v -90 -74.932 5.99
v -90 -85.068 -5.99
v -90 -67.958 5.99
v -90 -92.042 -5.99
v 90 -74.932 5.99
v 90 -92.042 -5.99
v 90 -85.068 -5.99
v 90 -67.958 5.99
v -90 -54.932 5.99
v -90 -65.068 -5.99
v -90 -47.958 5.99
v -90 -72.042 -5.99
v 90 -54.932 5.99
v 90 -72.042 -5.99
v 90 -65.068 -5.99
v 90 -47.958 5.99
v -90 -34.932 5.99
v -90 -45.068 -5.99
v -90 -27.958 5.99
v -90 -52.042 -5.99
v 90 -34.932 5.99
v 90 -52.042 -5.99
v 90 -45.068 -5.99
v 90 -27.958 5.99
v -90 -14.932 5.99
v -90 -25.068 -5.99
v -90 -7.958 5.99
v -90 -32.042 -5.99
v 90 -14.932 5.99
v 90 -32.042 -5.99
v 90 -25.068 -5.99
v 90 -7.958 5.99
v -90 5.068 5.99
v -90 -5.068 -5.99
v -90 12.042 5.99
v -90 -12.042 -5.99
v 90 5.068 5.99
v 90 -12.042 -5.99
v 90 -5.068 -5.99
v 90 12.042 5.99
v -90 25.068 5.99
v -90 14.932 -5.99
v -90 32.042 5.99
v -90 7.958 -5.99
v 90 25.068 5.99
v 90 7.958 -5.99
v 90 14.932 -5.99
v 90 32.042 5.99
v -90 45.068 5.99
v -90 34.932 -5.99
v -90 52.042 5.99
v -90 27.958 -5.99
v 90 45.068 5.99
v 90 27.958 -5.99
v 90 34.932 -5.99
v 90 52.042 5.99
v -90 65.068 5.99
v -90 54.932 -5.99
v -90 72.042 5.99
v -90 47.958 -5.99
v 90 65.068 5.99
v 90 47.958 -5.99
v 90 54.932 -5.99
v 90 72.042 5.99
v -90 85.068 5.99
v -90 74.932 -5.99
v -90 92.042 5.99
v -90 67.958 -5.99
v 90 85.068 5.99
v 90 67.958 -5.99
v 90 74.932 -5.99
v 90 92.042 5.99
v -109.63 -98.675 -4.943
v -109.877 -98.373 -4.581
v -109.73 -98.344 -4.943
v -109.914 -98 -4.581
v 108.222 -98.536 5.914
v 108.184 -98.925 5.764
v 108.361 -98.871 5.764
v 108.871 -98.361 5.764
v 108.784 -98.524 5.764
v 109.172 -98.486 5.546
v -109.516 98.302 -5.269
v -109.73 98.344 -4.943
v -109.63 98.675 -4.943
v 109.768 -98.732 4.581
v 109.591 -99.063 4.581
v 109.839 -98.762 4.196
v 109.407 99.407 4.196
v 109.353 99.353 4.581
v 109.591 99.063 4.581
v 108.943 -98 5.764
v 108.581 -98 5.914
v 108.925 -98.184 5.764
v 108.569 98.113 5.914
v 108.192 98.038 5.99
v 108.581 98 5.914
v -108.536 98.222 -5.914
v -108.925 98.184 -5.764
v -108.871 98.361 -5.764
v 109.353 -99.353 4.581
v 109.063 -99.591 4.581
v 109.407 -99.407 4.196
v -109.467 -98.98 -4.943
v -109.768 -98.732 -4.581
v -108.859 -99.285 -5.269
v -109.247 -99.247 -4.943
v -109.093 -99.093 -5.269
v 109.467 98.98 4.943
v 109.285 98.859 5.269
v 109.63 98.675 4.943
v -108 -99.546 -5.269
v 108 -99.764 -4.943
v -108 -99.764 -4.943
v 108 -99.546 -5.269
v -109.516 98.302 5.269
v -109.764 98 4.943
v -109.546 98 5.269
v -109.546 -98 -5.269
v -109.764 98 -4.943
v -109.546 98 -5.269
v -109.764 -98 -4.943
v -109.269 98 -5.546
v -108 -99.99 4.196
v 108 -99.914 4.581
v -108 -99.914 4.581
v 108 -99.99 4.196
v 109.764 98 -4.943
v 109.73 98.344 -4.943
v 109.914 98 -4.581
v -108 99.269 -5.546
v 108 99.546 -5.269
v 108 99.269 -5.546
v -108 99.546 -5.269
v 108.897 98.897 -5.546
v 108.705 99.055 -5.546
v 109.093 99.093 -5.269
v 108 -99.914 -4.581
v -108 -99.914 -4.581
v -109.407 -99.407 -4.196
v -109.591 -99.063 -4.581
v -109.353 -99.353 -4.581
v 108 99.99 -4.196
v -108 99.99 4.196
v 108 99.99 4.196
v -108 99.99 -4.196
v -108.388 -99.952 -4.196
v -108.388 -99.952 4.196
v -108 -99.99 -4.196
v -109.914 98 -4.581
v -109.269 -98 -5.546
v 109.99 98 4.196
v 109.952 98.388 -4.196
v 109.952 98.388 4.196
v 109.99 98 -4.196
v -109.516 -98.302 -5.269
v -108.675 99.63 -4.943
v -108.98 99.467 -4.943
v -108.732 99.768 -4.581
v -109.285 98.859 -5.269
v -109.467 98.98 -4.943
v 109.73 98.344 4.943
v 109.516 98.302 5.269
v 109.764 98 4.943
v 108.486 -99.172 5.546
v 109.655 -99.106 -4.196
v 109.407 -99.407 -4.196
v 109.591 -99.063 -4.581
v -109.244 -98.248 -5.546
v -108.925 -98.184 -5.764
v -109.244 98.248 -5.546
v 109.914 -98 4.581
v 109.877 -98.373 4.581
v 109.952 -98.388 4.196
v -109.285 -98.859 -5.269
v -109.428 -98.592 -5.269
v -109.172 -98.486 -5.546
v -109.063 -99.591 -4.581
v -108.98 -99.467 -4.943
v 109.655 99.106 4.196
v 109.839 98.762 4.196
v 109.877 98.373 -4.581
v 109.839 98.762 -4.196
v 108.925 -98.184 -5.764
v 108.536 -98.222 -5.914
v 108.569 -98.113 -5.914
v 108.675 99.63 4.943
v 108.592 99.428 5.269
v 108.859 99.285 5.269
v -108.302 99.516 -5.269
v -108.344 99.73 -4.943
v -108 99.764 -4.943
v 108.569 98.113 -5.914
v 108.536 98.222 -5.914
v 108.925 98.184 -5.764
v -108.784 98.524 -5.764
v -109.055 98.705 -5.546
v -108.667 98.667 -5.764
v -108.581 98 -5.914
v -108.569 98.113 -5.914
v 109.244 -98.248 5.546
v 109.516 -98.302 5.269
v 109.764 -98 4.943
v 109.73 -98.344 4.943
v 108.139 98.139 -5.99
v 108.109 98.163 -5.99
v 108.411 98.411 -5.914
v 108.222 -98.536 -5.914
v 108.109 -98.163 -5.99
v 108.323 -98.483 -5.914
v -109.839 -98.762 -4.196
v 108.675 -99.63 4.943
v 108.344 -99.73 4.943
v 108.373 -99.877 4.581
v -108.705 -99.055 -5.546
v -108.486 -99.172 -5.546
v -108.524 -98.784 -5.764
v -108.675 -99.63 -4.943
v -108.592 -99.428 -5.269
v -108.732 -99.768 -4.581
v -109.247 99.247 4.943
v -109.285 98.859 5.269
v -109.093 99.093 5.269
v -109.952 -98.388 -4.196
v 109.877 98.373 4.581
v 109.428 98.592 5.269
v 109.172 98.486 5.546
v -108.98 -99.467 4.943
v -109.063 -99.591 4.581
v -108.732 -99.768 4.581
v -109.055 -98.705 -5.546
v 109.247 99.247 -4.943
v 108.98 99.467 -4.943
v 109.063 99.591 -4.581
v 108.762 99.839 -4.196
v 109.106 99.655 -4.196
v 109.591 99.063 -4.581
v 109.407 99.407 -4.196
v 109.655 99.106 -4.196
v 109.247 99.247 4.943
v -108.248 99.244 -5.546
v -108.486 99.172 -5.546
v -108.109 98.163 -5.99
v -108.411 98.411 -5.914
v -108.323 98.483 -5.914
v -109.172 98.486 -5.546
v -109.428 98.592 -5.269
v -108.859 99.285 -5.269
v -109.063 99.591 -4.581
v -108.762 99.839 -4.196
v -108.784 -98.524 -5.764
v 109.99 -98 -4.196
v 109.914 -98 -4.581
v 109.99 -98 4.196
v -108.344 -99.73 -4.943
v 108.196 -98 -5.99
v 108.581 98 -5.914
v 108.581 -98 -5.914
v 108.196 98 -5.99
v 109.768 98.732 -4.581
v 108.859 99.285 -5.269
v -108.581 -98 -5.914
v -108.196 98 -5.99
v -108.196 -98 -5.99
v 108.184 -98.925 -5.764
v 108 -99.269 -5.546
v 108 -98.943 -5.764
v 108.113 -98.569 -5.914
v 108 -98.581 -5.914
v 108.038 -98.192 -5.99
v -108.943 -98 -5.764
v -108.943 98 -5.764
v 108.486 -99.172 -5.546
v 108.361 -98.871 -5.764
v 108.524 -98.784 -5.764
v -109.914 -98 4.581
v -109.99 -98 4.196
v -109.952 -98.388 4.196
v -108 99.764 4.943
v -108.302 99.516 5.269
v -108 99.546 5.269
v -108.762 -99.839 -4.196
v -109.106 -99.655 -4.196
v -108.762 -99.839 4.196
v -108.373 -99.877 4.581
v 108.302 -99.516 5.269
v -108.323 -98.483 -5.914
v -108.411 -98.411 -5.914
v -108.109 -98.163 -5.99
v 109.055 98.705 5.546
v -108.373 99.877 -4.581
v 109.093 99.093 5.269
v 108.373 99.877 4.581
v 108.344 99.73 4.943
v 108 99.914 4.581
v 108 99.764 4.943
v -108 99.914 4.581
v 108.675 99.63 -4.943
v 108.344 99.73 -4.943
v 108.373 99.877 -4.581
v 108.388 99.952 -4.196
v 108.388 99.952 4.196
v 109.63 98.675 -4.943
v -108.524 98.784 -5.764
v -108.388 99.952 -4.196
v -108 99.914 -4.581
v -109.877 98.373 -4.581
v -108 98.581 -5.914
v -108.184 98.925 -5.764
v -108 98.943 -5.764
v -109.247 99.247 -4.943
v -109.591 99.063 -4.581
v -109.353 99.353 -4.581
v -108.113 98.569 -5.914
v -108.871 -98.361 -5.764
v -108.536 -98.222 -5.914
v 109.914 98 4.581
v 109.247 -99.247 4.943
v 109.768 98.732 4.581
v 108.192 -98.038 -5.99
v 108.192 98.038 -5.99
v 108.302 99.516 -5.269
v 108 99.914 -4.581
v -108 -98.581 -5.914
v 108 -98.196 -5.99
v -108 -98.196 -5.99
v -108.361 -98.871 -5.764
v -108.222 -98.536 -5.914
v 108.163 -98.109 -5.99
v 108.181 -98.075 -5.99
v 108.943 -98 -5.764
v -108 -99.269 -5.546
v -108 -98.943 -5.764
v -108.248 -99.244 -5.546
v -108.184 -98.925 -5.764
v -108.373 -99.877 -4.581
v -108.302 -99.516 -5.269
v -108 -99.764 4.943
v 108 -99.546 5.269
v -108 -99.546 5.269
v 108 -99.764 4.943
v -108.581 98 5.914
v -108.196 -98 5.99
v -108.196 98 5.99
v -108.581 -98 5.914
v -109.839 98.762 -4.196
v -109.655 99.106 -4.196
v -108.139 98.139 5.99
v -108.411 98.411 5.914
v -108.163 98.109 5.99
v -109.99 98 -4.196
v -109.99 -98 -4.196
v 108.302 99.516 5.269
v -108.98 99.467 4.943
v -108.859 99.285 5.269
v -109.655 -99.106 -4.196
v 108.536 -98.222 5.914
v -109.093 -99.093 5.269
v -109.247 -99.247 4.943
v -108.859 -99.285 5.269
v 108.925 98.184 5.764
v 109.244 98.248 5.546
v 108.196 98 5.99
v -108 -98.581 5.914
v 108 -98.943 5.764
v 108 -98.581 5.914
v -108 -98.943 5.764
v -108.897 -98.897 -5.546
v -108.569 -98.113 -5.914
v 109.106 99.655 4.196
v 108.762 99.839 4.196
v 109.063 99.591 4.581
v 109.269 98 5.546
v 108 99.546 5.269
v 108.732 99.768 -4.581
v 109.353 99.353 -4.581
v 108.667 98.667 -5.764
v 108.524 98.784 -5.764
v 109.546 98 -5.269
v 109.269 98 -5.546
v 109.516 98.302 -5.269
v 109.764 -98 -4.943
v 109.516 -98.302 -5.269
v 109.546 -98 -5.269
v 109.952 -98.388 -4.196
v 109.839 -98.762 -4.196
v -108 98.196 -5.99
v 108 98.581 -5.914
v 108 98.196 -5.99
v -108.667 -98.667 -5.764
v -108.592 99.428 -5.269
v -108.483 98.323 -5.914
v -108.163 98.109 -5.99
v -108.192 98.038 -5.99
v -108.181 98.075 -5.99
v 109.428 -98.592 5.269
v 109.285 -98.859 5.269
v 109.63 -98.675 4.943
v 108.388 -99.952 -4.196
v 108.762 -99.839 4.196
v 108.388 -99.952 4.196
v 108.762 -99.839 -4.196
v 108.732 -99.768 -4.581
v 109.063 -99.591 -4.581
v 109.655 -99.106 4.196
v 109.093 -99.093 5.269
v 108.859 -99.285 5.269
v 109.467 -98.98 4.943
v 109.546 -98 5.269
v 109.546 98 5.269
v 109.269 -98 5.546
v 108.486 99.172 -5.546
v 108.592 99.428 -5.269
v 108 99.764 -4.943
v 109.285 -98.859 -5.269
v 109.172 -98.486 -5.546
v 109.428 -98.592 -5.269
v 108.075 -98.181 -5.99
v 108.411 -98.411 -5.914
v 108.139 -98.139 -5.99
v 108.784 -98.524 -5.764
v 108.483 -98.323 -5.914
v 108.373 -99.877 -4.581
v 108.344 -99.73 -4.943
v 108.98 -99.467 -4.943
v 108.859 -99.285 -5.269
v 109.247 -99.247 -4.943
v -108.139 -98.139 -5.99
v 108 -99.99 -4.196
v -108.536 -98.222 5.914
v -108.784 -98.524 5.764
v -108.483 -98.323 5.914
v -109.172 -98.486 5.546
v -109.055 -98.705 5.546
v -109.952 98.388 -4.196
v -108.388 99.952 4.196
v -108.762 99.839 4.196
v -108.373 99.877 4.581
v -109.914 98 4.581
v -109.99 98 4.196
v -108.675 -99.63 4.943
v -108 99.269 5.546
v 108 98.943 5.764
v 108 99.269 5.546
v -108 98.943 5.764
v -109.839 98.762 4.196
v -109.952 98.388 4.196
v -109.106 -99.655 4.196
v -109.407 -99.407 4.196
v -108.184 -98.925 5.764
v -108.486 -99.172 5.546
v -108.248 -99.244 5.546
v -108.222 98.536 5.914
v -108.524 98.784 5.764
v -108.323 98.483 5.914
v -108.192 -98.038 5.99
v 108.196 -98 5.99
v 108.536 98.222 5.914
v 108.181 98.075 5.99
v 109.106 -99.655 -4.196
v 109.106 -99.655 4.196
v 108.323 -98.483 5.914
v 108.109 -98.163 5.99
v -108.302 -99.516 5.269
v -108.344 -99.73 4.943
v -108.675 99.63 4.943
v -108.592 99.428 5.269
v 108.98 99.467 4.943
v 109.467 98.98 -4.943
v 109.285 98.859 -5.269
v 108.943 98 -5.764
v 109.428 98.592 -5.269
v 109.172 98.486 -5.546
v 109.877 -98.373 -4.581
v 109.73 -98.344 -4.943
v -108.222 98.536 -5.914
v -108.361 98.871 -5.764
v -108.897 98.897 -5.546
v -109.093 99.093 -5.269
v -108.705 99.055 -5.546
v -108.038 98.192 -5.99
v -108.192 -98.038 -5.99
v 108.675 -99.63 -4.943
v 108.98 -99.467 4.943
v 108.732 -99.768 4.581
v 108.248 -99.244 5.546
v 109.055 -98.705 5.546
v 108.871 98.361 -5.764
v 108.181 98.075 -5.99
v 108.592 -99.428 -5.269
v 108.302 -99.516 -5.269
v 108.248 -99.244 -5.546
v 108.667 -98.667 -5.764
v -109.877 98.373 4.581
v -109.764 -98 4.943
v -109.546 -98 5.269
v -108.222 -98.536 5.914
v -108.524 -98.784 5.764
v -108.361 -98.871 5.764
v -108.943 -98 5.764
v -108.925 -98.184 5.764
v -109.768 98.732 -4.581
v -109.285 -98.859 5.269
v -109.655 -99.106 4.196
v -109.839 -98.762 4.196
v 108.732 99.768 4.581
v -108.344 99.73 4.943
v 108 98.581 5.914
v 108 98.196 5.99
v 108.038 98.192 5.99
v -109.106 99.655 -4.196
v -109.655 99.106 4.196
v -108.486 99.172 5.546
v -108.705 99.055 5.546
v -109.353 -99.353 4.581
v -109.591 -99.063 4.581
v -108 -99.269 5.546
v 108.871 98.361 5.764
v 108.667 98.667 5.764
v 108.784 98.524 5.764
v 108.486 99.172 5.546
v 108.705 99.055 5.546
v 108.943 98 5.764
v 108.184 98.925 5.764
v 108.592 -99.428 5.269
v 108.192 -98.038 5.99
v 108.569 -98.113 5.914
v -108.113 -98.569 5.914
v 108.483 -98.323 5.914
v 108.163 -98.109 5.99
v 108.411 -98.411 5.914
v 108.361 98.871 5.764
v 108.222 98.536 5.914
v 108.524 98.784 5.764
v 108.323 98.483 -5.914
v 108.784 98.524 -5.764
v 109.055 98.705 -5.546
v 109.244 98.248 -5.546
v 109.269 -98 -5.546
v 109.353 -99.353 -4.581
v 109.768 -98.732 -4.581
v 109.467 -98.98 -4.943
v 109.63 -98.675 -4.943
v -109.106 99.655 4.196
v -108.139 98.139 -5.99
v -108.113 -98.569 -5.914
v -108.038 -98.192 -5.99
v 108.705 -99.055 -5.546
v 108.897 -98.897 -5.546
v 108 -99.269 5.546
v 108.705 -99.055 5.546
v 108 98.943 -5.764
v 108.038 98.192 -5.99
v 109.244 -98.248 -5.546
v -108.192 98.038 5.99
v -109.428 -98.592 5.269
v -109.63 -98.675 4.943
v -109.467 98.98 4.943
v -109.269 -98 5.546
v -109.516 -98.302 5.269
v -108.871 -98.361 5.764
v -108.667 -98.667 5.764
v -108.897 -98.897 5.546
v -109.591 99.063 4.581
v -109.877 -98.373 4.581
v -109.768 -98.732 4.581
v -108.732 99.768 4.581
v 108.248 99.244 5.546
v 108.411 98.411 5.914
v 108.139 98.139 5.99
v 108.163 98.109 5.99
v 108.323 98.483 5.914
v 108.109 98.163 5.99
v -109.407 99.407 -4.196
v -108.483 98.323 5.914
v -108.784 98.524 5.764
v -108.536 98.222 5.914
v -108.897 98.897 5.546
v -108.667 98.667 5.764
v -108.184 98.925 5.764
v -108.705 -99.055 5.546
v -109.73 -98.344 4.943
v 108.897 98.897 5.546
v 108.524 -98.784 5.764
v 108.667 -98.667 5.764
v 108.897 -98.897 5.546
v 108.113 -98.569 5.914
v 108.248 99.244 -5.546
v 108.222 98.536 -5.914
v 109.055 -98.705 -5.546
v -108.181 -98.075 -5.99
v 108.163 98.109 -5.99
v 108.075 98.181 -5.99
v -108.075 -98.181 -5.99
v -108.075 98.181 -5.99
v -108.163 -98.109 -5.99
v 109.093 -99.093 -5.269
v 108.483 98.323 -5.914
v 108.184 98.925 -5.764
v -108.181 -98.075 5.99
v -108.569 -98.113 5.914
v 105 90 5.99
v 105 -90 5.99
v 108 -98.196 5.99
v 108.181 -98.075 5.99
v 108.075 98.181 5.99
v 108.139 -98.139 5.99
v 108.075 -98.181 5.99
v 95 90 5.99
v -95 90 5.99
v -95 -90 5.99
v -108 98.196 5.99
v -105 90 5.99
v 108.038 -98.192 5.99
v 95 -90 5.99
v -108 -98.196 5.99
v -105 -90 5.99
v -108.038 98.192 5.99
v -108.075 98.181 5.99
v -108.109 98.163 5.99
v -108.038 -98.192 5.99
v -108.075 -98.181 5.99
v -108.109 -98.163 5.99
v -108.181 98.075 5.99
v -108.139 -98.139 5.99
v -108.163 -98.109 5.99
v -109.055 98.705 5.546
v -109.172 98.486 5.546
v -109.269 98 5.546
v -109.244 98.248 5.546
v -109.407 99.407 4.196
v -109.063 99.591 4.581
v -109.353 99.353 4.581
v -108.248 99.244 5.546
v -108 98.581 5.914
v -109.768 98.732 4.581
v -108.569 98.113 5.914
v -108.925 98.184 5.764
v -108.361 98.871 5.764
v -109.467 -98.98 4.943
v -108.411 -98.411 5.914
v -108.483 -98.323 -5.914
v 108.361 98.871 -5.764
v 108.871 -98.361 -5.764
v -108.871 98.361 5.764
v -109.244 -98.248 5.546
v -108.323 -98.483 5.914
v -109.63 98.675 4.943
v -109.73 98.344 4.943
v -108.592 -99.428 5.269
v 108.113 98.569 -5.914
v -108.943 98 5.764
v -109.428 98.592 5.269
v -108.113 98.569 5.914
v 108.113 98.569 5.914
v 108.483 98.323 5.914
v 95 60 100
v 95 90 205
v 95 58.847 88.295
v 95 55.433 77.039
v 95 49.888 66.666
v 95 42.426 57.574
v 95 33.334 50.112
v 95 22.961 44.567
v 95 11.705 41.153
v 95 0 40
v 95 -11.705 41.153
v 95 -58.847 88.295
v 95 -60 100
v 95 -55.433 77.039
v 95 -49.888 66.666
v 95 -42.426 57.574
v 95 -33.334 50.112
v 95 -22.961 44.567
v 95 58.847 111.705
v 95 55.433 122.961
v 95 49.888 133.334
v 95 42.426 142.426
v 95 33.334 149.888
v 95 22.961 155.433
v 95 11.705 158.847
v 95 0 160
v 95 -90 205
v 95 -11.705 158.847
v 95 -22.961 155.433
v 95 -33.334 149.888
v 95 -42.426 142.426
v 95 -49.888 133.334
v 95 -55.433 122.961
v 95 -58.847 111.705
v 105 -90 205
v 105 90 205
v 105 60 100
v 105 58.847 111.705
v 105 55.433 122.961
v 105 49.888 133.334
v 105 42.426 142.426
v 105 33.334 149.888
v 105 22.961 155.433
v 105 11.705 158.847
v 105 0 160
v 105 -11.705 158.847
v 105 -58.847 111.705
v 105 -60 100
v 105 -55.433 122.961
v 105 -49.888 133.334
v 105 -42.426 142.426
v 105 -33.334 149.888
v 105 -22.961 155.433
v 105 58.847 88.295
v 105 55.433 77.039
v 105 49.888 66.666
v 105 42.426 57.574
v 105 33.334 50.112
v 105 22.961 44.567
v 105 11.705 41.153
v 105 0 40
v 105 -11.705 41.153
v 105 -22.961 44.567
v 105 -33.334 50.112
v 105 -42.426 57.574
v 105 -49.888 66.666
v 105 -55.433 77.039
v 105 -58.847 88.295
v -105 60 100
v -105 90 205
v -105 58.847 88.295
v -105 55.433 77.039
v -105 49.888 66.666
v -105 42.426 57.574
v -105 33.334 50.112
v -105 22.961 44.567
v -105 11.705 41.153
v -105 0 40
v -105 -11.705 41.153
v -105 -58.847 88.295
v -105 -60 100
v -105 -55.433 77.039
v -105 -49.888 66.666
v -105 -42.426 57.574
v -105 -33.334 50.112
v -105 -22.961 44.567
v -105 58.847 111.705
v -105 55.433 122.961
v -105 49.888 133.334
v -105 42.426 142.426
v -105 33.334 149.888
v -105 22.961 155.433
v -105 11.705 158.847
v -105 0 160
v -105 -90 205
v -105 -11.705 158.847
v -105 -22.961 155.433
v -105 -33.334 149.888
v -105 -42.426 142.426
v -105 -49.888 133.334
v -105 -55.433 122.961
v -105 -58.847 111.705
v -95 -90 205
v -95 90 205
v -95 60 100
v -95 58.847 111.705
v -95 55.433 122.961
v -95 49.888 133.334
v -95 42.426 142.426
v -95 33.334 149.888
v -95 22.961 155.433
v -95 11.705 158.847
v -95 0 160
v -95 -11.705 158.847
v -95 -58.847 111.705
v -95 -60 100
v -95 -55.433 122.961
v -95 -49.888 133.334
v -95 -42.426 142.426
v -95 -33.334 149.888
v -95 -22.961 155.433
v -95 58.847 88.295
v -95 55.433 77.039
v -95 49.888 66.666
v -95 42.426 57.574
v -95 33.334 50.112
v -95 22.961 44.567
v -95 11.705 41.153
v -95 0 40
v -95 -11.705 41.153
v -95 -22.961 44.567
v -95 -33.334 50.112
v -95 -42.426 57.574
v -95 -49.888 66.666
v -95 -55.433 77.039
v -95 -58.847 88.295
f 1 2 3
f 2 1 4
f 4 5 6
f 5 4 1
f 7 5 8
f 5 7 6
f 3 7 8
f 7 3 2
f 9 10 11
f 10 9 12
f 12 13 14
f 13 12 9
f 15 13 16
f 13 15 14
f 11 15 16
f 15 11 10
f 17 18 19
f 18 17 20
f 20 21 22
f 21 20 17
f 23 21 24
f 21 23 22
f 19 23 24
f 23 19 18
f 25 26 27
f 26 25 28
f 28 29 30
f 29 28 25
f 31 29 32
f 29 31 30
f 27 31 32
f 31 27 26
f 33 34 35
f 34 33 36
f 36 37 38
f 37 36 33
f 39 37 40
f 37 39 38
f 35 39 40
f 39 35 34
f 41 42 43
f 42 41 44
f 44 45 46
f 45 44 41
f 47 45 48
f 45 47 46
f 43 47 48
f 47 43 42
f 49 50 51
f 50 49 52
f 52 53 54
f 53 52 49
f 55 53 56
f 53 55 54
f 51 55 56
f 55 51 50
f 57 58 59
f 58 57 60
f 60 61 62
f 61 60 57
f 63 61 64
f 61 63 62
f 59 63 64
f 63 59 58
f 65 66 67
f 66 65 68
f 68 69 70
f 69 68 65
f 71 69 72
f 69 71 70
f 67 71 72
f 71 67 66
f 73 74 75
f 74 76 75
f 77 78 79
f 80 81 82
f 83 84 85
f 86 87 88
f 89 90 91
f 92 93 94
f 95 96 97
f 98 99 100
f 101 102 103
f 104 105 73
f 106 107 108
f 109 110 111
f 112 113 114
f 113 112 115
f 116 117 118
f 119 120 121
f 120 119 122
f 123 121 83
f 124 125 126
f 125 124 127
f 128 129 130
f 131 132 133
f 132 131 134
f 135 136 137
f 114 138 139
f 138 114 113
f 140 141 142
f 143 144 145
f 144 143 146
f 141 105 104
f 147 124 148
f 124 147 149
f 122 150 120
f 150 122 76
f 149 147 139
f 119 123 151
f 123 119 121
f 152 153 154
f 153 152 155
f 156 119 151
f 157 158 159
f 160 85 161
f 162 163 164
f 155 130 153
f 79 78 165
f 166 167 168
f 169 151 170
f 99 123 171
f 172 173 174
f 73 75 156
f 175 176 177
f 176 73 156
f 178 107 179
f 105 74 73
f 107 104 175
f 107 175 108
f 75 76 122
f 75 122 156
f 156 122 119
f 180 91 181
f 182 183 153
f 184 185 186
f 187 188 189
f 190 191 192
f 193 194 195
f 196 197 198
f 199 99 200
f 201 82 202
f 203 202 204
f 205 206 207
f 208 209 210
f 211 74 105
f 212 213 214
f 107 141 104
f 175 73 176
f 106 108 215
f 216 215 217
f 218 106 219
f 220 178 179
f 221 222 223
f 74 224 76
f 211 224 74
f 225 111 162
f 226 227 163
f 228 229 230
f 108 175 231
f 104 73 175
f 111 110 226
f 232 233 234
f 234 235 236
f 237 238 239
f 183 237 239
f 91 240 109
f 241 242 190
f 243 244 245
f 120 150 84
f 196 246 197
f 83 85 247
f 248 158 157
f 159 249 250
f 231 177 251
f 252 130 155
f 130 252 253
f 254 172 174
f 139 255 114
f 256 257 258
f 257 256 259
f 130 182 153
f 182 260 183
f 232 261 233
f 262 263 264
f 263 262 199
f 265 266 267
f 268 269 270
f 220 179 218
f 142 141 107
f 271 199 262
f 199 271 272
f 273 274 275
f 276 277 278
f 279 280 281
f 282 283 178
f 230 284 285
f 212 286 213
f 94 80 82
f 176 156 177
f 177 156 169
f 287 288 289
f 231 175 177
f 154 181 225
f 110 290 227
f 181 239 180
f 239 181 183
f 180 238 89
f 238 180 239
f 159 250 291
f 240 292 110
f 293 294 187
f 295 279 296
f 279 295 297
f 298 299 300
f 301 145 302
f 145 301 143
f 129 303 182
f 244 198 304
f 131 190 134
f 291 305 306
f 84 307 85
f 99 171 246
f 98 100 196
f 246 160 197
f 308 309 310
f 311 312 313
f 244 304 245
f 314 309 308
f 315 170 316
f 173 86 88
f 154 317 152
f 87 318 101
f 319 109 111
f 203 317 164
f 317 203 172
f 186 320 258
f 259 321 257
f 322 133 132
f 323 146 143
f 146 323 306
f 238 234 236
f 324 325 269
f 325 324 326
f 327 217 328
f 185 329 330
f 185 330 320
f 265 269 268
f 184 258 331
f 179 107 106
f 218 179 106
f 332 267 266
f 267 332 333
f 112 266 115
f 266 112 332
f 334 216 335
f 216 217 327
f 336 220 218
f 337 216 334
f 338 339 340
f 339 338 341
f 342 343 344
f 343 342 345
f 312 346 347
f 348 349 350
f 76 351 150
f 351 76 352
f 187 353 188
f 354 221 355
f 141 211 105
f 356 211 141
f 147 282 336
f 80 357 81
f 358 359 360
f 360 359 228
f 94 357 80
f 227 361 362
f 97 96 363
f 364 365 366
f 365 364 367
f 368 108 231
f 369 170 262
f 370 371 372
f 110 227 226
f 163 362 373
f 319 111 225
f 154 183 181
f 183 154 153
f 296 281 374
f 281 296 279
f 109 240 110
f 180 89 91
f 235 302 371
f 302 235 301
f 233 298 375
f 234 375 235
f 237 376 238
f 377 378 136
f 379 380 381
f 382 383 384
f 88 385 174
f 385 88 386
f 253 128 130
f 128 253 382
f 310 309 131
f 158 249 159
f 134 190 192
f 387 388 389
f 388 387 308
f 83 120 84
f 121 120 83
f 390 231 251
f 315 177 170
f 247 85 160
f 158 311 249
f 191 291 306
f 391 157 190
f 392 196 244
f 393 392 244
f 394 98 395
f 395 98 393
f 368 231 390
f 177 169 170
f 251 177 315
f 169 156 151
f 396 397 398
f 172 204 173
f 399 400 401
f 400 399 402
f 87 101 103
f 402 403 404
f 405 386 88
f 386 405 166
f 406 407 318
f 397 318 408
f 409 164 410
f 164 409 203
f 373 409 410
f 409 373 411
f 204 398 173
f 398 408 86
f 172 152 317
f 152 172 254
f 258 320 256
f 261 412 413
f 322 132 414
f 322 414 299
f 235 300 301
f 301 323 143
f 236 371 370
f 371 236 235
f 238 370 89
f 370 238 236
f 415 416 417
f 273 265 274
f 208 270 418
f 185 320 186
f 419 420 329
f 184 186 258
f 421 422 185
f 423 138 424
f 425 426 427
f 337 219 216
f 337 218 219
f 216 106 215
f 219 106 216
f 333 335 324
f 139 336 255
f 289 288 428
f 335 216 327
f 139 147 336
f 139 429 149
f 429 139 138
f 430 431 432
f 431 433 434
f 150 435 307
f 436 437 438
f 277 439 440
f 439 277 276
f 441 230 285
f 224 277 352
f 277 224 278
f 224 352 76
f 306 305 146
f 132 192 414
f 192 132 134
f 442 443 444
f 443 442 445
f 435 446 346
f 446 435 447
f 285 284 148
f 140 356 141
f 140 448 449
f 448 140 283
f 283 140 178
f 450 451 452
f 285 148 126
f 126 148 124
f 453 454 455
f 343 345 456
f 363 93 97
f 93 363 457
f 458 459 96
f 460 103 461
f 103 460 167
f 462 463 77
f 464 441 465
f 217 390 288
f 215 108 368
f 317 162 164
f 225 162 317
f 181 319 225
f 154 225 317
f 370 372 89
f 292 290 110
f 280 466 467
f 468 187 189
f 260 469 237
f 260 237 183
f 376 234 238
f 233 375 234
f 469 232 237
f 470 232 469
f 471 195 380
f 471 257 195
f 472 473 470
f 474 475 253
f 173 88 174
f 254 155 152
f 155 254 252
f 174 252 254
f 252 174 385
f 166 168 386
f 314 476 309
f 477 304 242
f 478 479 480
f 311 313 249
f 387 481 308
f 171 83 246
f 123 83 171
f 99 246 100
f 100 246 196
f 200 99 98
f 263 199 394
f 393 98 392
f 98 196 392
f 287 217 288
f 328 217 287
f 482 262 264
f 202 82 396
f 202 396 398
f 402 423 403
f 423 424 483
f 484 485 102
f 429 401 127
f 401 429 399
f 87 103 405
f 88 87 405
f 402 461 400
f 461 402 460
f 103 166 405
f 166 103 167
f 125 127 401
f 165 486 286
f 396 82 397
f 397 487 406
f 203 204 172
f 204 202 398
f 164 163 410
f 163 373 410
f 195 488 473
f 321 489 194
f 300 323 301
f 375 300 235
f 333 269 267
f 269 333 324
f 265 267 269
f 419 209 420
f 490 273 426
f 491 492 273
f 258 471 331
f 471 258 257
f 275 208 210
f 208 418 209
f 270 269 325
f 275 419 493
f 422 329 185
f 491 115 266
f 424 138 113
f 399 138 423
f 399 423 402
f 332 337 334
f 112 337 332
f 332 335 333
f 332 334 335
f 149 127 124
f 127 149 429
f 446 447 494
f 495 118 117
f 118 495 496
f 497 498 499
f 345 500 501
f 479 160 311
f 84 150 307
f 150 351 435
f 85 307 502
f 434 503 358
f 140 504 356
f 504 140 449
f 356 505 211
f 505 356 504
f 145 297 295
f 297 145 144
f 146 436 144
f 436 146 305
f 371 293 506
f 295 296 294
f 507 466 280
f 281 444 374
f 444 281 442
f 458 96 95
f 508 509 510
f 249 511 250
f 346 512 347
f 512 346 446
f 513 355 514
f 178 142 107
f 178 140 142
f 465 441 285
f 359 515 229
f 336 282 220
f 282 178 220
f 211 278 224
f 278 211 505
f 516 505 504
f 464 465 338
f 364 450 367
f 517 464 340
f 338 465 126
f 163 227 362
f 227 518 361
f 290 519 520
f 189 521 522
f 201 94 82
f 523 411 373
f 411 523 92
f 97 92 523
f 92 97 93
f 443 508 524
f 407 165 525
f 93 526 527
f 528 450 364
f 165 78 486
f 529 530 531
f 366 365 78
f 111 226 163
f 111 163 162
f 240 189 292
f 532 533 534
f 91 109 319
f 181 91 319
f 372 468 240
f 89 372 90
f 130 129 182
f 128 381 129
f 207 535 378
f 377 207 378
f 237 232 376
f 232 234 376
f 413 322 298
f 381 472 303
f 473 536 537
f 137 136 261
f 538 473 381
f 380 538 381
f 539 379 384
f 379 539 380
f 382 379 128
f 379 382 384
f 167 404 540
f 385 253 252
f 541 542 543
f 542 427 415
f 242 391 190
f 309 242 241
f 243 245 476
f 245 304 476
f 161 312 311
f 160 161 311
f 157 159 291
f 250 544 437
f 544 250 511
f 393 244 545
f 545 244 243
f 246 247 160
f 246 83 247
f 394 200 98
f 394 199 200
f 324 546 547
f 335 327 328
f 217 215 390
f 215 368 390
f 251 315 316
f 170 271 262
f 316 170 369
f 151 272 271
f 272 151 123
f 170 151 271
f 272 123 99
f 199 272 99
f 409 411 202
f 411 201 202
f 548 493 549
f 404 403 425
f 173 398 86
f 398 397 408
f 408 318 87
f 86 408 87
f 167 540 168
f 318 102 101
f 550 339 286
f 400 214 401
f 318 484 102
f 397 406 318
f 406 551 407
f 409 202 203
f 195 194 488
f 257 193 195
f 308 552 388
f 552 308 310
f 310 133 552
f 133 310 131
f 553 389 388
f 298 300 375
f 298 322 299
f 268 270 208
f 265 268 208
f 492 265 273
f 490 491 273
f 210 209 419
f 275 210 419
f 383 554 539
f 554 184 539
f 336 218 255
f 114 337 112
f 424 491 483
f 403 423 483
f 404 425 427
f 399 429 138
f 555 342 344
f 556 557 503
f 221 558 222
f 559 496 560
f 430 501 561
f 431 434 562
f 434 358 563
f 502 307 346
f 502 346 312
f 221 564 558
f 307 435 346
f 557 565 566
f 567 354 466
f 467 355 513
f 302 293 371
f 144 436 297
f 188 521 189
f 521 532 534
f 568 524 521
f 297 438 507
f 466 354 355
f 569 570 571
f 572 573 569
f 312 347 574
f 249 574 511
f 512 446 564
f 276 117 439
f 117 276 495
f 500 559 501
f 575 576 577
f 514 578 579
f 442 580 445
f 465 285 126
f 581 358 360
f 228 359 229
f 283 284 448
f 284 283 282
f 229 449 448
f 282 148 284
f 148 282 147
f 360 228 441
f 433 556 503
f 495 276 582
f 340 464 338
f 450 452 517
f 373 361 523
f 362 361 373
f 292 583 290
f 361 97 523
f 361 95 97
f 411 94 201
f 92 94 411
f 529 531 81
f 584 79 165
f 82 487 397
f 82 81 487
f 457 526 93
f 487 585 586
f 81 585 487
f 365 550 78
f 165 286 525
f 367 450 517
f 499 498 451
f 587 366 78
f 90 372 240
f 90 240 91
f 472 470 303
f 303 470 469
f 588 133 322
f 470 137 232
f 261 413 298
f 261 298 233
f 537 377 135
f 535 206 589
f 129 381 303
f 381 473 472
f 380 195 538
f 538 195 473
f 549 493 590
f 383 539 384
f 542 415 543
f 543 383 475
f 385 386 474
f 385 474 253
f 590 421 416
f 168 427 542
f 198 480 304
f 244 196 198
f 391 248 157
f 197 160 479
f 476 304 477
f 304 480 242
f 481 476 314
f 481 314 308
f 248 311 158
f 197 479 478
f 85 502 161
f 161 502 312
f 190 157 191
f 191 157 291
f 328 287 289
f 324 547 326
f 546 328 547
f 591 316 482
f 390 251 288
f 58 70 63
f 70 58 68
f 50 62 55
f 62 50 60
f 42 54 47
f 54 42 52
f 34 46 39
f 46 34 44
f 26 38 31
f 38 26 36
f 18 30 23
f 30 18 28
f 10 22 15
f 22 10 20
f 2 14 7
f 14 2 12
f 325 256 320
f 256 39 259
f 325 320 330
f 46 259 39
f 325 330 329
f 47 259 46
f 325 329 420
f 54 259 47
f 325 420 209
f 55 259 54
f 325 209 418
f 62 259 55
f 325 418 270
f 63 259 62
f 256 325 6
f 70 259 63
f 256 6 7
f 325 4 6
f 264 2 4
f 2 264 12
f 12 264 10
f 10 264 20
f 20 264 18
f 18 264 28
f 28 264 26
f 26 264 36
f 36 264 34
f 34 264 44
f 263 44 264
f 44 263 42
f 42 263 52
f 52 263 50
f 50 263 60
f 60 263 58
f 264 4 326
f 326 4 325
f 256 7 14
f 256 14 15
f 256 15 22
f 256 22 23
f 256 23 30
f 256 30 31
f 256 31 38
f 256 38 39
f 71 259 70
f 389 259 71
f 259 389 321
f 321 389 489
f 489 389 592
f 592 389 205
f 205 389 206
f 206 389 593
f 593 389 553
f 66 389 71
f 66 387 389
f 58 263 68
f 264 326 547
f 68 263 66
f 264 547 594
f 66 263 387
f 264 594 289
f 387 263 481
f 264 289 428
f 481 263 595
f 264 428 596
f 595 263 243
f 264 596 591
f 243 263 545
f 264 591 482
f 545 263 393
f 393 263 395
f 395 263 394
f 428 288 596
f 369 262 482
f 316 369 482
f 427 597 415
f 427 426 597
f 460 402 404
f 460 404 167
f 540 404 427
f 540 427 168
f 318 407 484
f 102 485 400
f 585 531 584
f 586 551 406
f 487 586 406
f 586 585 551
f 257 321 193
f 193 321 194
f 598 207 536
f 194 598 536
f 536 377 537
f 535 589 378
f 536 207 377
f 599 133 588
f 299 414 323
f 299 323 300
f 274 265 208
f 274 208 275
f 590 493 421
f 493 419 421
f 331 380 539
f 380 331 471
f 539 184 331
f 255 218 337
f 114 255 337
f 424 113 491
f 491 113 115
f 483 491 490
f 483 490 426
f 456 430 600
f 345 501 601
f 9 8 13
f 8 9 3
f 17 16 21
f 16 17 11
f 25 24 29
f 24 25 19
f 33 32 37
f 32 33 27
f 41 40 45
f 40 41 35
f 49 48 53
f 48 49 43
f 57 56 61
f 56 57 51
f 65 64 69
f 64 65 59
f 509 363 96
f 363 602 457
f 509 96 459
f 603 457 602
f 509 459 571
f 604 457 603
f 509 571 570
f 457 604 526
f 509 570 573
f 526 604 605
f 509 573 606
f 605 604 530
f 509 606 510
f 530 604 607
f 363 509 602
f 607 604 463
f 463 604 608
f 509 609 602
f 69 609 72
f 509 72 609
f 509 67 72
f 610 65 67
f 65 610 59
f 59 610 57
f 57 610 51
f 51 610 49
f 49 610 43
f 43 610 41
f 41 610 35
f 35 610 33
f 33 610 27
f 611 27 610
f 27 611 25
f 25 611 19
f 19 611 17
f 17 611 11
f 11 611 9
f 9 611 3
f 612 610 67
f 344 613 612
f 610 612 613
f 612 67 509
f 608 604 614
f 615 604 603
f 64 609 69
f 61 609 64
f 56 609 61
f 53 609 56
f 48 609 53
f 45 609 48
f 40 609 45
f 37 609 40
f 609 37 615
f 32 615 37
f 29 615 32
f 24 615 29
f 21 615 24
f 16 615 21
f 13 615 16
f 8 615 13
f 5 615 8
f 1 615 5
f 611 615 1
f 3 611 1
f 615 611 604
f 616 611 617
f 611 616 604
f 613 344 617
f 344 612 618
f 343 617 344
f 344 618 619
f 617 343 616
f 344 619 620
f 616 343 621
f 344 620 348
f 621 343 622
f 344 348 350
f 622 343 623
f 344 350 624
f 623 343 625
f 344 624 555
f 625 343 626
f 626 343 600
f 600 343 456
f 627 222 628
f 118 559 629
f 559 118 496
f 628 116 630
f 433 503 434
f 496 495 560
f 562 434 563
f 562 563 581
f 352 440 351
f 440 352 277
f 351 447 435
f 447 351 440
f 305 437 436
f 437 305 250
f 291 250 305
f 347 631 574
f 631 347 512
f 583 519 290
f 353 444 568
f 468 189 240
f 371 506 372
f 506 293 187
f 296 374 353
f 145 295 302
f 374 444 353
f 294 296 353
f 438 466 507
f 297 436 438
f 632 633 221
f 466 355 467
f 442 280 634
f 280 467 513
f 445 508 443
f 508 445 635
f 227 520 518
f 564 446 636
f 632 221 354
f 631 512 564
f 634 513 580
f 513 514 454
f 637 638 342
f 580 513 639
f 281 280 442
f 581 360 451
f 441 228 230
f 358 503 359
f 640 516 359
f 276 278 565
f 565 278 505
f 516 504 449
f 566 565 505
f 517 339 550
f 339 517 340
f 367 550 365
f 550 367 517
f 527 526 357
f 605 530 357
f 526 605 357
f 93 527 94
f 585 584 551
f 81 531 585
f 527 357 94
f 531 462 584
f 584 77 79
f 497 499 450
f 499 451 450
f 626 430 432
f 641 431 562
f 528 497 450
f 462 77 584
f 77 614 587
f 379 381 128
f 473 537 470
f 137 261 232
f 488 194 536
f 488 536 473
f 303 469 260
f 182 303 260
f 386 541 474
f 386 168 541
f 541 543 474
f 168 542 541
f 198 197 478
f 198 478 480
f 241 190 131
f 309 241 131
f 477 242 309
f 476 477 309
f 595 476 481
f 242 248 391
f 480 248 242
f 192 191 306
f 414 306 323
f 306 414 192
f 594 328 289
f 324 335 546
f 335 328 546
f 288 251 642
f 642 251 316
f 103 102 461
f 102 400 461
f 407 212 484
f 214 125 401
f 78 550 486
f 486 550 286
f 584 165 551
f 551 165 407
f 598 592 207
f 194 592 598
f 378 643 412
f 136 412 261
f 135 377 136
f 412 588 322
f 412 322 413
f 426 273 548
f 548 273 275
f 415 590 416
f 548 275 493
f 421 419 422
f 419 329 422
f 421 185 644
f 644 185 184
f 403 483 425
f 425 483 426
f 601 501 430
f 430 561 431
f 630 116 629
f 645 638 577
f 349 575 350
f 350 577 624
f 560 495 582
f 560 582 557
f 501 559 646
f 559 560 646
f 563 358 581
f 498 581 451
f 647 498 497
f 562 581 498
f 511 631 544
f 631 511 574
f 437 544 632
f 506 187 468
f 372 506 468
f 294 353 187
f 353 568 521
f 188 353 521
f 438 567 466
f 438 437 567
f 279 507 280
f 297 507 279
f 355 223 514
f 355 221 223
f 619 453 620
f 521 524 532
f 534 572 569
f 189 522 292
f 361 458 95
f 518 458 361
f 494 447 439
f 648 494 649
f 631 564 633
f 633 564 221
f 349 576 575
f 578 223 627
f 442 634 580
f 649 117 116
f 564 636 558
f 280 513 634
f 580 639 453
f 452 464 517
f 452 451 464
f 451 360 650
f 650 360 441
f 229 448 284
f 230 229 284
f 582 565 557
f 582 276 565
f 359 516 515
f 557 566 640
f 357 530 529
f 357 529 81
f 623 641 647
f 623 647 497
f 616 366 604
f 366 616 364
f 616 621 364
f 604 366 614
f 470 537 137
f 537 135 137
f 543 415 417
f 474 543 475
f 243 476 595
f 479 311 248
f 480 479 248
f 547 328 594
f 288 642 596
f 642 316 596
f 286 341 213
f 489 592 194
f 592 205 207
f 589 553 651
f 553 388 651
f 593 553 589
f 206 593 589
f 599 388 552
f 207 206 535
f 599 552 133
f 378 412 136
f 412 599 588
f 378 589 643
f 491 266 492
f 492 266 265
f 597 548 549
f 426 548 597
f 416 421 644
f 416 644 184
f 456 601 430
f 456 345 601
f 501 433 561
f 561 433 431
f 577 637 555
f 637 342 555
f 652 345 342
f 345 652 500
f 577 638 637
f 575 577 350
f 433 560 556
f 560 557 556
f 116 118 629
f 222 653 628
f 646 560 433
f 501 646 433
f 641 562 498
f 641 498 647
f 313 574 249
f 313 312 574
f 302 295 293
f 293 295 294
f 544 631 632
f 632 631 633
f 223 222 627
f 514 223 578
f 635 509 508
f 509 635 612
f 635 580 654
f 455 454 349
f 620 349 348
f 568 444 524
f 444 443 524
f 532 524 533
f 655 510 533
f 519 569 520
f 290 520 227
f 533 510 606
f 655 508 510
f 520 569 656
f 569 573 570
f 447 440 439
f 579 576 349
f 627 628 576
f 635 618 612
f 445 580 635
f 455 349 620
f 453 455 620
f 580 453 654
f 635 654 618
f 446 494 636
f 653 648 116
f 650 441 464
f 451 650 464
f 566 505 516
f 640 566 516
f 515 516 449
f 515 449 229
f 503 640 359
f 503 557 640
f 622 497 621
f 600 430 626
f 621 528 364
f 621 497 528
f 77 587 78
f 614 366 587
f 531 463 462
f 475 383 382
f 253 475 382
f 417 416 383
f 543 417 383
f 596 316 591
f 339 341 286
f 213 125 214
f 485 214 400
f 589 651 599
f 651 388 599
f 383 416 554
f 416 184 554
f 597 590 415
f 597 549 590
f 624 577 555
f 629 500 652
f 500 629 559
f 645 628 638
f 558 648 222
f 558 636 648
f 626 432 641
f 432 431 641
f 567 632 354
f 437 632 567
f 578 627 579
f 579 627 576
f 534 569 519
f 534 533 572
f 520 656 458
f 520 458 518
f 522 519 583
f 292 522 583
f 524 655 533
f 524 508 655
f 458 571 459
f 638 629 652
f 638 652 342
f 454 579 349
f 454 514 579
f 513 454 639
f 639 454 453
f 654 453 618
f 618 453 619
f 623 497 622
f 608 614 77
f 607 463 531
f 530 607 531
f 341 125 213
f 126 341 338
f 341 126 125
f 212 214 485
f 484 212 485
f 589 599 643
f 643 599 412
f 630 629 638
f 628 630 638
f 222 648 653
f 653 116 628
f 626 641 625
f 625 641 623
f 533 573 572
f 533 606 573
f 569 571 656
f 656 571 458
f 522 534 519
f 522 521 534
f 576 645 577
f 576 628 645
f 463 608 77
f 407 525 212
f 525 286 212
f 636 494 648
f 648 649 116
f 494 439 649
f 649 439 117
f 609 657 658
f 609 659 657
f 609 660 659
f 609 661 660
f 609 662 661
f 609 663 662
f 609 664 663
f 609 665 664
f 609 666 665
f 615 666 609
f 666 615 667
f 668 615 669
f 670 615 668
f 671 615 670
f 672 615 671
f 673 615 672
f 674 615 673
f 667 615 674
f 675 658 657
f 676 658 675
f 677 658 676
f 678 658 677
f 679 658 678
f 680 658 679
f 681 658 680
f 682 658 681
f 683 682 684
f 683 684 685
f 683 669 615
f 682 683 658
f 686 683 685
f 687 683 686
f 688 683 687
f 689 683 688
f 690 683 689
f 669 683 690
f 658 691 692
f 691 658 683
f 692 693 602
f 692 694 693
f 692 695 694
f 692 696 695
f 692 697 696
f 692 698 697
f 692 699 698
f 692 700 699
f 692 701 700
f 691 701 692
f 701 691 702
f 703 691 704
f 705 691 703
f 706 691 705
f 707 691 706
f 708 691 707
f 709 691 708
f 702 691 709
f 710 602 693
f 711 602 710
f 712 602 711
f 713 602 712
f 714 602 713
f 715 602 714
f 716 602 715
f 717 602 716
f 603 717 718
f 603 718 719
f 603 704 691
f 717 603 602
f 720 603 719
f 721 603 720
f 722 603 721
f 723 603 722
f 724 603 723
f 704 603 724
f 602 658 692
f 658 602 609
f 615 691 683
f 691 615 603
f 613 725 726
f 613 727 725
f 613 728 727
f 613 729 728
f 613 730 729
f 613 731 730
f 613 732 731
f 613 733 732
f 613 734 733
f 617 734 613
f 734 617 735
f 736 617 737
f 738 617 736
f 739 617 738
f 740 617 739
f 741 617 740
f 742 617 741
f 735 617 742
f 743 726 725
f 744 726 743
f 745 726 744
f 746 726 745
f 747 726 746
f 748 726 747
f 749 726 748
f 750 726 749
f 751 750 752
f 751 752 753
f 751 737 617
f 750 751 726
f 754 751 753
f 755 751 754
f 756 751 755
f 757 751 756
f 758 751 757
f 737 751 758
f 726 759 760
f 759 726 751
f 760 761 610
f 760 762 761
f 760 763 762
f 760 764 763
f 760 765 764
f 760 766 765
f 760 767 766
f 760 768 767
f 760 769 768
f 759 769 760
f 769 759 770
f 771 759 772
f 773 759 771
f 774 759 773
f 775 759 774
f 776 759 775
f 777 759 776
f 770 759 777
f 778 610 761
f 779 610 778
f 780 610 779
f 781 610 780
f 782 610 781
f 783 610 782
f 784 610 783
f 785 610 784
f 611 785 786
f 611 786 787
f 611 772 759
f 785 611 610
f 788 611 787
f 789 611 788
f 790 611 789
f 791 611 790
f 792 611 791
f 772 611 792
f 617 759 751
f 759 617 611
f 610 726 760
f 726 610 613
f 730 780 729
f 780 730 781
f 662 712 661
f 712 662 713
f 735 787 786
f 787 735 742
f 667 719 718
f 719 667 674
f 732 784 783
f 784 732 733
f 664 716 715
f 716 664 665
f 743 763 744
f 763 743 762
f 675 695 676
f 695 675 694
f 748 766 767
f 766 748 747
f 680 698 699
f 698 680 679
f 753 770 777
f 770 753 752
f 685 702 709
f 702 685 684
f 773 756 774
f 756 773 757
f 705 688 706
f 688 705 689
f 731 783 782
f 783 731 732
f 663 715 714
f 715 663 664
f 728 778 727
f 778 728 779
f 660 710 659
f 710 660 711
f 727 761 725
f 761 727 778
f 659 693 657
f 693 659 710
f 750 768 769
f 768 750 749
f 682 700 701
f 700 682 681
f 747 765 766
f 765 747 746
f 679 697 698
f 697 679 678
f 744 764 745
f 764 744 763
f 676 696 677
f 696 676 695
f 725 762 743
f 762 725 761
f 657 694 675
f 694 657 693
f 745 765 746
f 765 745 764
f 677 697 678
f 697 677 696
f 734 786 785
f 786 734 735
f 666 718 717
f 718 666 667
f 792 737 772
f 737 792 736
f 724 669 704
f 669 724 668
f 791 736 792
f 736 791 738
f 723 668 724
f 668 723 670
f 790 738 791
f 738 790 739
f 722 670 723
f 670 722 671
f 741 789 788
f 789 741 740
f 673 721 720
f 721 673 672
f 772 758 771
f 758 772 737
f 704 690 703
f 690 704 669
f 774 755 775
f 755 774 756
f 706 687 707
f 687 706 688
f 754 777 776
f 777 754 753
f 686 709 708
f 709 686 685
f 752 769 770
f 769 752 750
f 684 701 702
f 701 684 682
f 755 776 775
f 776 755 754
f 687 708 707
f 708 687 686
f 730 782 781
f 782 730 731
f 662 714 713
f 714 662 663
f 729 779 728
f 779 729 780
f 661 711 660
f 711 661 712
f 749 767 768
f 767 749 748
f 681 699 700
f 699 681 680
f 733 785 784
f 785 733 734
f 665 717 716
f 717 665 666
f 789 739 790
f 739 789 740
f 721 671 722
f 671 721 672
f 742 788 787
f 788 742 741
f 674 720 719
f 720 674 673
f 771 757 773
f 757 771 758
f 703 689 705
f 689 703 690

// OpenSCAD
// Klimmzugstangenschutz

$fn=32;

height=200;
width=220;
depth=200;
thickness=10;

footThickness=20;

fanThickness=4;

difference() {
  minkowski() {
    cube([width-4,depth-4, thickness-2], center=true);
    sphere(2);
  }
  for(i=[-4 : 4]) {
    translate([0,depth/2/5*i,0]) 
      rotate([35,0,0]) 
        cube([width-4*thickness, depth, fanThickness], center=true);
  }
}

difference() {
  union() {
    translate([width/2-thickness,0,height/2+thickness/2]) 
      cube([thickness,depth-footThickness, height], center=true);
    translate([-width/2+thickness,0,height/2+thickness/2]) 
      cube([thickness,depth-footThickness, height], center=true);
  }
  translate([-depth/2-footThickness/2,0,height/2]) rotate([0,90,0]) cylinder(d=depth-footThickness*4,h=width);
}
